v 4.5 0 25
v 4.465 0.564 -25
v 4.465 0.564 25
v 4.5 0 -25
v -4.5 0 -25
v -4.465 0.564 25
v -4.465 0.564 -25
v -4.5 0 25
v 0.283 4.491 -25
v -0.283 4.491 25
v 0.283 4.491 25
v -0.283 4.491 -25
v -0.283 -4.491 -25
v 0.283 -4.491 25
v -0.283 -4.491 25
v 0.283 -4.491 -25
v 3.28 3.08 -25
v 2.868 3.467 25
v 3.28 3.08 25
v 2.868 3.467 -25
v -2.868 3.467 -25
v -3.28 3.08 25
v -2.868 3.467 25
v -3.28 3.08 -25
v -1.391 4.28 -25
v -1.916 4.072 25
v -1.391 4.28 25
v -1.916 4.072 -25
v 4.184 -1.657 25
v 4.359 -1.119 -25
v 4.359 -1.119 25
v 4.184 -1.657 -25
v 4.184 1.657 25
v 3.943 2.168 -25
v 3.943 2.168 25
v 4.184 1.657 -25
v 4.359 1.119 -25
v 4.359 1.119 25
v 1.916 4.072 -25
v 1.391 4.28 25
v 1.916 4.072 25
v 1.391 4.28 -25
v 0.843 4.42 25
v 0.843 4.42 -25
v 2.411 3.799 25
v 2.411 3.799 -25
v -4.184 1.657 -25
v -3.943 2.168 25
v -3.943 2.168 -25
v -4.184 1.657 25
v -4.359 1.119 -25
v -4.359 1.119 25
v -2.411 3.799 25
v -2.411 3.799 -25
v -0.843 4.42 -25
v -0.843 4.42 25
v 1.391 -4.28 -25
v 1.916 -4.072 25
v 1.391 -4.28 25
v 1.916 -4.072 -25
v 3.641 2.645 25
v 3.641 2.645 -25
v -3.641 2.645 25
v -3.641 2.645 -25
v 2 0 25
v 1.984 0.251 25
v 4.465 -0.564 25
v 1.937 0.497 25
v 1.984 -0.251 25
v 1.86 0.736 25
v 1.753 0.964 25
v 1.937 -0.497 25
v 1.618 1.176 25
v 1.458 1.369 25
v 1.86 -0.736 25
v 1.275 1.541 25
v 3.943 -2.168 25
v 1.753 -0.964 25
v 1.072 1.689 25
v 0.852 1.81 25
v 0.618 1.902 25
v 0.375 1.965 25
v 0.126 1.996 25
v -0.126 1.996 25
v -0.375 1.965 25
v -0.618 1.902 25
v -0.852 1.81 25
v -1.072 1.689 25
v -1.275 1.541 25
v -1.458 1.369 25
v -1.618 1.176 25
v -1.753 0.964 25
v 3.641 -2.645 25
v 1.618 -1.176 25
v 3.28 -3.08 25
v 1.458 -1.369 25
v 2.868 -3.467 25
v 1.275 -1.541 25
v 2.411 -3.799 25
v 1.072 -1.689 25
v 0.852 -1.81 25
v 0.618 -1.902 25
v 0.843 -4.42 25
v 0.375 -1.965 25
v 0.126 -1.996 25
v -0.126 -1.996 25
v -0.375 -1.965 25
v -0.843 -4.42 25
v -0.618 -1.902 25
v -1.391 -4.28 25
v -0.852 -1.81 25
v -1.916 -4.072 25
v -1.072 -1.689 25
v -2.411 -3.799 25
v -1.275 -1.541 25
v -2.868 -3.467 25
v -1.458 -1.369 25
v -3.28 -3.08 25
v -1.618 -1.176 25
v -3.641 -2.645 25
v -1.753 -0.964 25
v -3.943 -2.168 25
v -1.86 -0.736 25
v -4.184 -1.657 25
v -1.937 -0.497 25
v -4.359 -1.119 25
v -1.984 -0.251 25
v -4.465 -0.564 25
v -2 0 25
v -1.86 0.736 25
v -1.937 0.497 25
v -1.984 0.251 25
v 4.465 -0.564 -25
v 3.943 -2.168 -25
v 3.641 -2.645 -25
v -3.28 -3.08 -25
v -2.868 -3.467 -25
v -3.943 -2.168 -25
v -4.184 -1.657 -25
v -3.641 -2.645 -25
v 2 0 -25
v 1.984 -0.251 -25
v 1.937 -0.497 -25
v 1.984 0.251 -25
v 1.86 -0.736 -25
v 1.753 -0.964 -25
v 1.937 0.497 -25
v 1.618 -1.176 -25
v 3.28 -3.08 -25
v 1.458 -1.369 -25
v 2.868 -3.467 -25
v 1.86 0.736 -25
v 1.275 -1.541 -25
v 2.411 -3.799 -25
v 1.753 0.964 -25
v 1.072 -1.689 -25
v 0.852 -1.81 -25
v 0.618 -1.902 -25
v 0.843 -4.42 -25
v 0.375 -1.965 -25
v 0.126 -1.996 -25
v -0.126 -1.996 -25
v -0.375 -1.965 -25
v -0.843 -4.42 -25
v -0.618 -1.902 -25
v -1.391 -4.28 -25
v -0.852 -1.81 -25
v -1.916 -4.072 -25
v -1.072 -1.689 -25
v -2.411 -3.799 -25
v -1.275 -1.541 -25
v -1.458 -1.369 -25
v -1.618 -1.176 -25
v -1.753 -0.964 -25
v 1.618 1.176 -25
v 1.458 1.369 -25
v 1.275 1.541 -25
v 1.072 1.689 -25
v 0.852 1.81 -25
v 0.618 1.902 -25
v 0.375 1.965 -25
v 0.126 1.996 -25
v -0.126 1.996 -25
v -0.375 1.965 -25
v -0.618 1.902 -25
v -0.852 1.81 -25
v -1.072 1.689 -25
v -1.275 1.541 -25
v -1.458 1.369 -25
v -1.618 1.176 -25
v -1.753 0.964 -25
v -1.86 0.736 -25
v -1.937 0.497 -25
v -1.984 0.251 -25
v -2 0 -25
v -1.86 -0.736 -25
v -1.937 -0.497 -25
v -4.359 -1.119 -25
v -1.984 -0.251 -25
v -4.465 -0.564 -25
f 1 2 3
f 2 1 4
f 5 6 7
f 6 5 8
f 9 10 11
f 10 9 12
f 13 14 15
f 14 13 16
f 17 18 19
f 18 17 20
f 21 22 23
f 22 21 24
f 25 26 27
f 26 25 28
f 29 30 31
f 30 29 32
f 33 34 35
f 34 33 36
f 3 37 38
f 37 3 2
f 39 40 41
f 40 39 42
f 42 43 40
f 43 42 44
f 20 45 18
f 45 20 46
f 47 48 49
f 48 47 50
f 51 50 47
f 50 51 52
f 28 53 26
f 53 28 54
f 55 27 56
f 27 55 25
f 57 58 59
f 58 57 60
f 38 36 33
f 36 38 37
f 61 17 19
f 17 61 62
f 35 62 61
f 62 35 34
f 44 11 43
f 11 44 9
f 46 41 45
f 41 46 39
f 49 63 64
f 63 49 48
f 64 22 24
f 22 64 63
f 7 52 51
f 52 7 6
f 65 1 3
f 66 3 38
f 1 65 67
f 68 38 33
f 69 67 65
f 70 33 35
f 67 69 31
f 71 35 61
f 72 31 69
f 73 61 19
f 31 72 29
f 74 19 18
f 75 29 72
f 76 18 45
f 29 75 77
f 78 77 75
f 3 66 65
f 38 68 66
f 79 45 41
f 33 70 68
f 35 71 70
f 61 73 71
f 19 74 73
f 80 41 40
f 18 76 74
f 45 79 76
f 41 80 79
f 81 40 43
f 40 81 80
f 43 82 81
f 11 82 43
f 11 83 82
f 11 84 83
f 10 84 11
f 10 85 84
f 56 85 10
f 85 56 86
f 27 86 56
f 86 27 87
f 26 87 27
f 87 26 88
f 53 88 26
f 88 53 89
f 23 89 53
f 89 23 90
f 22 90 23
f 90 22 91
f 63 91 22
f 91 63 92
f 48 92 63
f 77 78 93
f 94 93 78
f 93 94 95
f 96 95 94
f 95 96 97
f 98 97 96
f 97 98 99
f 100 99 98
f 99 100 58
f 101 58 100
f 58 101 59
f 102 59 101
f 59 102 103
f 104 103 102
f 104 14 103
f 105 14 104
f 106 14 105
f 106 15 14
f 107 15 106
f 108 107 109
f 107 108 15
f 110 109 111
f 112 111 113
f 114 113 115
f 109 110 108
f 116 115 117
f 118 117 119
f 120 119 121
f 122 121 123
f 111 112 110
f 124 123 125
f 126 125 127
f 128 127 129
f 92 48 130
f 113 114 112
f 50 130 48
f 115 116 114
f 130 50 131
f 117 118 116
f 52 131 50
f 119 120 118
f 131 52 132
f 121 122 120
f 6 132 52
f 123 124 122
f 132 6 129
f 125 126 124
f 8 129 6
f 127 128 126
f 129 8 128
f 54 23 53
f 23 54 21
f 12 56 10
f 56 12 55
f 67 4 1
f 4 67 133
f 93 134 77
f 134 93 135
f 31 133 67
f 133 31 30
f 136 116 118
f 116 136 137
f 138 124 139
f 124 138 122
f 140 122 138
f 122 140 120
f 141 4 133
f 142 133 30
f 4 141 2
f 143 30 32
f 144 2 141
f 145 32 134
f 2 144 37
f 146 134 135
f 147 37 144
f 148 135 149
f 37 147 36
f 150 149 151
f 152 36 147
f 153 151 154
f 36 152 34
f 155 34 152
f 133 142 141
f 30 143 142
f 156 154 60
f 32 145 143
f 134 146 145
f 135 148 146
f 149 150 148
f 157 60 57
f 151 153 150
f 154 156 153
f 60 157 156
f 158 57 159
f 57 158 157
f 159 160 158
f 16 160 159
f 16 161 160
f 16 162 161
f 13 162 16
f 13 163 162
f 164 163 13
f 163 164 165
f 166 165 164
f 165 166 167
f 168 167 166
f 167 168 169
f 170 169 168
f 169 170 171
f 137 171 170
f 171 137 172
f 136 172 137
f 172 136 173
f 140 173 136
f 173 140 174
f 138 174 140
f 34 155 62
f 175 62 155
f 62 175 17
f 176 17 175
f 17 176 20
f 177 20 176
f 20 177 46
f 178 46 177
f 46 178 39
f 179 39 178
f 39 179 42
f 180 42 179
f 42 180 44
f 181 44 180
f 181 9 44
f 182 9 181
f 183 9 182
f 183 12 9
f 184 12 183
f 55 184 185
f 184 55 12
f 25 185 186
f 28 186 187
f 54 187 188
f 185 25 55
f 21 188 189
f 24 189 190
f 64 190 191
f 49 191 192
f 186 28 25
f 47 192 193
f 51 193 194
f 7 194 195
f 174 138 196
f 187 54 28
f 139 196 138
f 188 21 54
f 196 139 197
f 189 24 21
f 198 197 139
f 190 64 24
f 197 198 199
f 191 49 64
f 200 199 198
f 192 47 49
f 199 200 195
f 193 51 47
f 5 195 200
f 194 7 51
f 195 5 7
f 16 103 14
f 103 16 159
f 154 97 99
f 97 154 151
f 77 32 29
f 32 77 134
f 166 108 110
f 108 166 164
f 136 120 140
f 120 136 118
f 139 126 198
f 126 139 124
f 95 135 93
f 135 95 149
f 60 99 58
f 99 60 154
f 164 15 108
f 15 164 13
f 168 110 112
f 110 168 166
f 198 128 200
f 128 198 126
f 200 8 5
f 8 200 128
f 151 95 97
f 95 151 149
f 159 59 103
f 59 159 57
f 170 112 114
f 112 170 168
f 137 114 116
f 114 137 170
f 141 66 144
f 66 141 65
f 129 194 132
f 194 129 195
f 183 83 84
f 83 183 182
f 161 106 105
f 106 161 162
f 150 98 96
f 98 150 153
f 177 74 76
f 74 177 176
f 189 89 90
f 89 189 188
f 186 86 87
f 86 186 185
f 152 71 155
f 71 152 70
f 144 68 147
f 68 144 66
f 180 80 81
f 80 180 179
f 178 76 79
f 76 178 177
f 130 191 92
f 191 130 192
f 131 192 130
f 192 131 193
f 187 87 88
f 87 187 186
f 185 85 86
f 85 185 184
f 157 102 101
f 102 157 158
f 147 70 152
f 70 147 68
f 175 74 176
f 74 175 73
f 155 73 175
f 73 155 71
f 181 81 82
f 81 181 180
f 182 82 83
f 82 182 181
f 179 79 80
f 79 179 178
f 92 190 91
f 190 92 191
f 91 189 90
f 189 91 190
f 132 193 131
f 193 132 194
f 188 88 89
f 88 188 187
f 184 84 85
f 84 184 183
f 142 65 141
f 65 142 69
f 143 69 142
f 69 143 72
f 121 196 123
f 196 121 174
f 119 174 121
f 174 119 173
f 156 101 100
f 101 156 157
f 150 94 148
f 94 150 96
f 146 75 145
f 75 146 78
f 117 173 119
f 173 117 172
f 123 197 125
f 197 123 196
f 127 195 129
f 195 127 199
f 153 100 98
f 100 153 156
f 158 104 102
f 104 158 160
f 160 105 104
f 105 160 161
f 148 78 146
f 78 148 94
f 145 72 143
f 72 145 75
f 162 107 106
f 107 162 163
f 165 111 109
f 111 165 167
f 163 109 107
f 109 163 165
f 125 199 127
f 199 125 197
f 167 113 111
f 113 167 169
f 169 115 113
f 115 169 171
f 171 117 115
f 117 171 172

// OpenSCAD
$fn = 50;


difference() {
	union() {
		translate(v = [0, 0, -25.0000000000]) {
			cylinder(h = 50, r = 4.5000000000);
		}
	}
	union() {
		translate(v = [0, 0, -100.0000000000]) {
			cylinder(h = 200, r = 2);
		}
	}
}
